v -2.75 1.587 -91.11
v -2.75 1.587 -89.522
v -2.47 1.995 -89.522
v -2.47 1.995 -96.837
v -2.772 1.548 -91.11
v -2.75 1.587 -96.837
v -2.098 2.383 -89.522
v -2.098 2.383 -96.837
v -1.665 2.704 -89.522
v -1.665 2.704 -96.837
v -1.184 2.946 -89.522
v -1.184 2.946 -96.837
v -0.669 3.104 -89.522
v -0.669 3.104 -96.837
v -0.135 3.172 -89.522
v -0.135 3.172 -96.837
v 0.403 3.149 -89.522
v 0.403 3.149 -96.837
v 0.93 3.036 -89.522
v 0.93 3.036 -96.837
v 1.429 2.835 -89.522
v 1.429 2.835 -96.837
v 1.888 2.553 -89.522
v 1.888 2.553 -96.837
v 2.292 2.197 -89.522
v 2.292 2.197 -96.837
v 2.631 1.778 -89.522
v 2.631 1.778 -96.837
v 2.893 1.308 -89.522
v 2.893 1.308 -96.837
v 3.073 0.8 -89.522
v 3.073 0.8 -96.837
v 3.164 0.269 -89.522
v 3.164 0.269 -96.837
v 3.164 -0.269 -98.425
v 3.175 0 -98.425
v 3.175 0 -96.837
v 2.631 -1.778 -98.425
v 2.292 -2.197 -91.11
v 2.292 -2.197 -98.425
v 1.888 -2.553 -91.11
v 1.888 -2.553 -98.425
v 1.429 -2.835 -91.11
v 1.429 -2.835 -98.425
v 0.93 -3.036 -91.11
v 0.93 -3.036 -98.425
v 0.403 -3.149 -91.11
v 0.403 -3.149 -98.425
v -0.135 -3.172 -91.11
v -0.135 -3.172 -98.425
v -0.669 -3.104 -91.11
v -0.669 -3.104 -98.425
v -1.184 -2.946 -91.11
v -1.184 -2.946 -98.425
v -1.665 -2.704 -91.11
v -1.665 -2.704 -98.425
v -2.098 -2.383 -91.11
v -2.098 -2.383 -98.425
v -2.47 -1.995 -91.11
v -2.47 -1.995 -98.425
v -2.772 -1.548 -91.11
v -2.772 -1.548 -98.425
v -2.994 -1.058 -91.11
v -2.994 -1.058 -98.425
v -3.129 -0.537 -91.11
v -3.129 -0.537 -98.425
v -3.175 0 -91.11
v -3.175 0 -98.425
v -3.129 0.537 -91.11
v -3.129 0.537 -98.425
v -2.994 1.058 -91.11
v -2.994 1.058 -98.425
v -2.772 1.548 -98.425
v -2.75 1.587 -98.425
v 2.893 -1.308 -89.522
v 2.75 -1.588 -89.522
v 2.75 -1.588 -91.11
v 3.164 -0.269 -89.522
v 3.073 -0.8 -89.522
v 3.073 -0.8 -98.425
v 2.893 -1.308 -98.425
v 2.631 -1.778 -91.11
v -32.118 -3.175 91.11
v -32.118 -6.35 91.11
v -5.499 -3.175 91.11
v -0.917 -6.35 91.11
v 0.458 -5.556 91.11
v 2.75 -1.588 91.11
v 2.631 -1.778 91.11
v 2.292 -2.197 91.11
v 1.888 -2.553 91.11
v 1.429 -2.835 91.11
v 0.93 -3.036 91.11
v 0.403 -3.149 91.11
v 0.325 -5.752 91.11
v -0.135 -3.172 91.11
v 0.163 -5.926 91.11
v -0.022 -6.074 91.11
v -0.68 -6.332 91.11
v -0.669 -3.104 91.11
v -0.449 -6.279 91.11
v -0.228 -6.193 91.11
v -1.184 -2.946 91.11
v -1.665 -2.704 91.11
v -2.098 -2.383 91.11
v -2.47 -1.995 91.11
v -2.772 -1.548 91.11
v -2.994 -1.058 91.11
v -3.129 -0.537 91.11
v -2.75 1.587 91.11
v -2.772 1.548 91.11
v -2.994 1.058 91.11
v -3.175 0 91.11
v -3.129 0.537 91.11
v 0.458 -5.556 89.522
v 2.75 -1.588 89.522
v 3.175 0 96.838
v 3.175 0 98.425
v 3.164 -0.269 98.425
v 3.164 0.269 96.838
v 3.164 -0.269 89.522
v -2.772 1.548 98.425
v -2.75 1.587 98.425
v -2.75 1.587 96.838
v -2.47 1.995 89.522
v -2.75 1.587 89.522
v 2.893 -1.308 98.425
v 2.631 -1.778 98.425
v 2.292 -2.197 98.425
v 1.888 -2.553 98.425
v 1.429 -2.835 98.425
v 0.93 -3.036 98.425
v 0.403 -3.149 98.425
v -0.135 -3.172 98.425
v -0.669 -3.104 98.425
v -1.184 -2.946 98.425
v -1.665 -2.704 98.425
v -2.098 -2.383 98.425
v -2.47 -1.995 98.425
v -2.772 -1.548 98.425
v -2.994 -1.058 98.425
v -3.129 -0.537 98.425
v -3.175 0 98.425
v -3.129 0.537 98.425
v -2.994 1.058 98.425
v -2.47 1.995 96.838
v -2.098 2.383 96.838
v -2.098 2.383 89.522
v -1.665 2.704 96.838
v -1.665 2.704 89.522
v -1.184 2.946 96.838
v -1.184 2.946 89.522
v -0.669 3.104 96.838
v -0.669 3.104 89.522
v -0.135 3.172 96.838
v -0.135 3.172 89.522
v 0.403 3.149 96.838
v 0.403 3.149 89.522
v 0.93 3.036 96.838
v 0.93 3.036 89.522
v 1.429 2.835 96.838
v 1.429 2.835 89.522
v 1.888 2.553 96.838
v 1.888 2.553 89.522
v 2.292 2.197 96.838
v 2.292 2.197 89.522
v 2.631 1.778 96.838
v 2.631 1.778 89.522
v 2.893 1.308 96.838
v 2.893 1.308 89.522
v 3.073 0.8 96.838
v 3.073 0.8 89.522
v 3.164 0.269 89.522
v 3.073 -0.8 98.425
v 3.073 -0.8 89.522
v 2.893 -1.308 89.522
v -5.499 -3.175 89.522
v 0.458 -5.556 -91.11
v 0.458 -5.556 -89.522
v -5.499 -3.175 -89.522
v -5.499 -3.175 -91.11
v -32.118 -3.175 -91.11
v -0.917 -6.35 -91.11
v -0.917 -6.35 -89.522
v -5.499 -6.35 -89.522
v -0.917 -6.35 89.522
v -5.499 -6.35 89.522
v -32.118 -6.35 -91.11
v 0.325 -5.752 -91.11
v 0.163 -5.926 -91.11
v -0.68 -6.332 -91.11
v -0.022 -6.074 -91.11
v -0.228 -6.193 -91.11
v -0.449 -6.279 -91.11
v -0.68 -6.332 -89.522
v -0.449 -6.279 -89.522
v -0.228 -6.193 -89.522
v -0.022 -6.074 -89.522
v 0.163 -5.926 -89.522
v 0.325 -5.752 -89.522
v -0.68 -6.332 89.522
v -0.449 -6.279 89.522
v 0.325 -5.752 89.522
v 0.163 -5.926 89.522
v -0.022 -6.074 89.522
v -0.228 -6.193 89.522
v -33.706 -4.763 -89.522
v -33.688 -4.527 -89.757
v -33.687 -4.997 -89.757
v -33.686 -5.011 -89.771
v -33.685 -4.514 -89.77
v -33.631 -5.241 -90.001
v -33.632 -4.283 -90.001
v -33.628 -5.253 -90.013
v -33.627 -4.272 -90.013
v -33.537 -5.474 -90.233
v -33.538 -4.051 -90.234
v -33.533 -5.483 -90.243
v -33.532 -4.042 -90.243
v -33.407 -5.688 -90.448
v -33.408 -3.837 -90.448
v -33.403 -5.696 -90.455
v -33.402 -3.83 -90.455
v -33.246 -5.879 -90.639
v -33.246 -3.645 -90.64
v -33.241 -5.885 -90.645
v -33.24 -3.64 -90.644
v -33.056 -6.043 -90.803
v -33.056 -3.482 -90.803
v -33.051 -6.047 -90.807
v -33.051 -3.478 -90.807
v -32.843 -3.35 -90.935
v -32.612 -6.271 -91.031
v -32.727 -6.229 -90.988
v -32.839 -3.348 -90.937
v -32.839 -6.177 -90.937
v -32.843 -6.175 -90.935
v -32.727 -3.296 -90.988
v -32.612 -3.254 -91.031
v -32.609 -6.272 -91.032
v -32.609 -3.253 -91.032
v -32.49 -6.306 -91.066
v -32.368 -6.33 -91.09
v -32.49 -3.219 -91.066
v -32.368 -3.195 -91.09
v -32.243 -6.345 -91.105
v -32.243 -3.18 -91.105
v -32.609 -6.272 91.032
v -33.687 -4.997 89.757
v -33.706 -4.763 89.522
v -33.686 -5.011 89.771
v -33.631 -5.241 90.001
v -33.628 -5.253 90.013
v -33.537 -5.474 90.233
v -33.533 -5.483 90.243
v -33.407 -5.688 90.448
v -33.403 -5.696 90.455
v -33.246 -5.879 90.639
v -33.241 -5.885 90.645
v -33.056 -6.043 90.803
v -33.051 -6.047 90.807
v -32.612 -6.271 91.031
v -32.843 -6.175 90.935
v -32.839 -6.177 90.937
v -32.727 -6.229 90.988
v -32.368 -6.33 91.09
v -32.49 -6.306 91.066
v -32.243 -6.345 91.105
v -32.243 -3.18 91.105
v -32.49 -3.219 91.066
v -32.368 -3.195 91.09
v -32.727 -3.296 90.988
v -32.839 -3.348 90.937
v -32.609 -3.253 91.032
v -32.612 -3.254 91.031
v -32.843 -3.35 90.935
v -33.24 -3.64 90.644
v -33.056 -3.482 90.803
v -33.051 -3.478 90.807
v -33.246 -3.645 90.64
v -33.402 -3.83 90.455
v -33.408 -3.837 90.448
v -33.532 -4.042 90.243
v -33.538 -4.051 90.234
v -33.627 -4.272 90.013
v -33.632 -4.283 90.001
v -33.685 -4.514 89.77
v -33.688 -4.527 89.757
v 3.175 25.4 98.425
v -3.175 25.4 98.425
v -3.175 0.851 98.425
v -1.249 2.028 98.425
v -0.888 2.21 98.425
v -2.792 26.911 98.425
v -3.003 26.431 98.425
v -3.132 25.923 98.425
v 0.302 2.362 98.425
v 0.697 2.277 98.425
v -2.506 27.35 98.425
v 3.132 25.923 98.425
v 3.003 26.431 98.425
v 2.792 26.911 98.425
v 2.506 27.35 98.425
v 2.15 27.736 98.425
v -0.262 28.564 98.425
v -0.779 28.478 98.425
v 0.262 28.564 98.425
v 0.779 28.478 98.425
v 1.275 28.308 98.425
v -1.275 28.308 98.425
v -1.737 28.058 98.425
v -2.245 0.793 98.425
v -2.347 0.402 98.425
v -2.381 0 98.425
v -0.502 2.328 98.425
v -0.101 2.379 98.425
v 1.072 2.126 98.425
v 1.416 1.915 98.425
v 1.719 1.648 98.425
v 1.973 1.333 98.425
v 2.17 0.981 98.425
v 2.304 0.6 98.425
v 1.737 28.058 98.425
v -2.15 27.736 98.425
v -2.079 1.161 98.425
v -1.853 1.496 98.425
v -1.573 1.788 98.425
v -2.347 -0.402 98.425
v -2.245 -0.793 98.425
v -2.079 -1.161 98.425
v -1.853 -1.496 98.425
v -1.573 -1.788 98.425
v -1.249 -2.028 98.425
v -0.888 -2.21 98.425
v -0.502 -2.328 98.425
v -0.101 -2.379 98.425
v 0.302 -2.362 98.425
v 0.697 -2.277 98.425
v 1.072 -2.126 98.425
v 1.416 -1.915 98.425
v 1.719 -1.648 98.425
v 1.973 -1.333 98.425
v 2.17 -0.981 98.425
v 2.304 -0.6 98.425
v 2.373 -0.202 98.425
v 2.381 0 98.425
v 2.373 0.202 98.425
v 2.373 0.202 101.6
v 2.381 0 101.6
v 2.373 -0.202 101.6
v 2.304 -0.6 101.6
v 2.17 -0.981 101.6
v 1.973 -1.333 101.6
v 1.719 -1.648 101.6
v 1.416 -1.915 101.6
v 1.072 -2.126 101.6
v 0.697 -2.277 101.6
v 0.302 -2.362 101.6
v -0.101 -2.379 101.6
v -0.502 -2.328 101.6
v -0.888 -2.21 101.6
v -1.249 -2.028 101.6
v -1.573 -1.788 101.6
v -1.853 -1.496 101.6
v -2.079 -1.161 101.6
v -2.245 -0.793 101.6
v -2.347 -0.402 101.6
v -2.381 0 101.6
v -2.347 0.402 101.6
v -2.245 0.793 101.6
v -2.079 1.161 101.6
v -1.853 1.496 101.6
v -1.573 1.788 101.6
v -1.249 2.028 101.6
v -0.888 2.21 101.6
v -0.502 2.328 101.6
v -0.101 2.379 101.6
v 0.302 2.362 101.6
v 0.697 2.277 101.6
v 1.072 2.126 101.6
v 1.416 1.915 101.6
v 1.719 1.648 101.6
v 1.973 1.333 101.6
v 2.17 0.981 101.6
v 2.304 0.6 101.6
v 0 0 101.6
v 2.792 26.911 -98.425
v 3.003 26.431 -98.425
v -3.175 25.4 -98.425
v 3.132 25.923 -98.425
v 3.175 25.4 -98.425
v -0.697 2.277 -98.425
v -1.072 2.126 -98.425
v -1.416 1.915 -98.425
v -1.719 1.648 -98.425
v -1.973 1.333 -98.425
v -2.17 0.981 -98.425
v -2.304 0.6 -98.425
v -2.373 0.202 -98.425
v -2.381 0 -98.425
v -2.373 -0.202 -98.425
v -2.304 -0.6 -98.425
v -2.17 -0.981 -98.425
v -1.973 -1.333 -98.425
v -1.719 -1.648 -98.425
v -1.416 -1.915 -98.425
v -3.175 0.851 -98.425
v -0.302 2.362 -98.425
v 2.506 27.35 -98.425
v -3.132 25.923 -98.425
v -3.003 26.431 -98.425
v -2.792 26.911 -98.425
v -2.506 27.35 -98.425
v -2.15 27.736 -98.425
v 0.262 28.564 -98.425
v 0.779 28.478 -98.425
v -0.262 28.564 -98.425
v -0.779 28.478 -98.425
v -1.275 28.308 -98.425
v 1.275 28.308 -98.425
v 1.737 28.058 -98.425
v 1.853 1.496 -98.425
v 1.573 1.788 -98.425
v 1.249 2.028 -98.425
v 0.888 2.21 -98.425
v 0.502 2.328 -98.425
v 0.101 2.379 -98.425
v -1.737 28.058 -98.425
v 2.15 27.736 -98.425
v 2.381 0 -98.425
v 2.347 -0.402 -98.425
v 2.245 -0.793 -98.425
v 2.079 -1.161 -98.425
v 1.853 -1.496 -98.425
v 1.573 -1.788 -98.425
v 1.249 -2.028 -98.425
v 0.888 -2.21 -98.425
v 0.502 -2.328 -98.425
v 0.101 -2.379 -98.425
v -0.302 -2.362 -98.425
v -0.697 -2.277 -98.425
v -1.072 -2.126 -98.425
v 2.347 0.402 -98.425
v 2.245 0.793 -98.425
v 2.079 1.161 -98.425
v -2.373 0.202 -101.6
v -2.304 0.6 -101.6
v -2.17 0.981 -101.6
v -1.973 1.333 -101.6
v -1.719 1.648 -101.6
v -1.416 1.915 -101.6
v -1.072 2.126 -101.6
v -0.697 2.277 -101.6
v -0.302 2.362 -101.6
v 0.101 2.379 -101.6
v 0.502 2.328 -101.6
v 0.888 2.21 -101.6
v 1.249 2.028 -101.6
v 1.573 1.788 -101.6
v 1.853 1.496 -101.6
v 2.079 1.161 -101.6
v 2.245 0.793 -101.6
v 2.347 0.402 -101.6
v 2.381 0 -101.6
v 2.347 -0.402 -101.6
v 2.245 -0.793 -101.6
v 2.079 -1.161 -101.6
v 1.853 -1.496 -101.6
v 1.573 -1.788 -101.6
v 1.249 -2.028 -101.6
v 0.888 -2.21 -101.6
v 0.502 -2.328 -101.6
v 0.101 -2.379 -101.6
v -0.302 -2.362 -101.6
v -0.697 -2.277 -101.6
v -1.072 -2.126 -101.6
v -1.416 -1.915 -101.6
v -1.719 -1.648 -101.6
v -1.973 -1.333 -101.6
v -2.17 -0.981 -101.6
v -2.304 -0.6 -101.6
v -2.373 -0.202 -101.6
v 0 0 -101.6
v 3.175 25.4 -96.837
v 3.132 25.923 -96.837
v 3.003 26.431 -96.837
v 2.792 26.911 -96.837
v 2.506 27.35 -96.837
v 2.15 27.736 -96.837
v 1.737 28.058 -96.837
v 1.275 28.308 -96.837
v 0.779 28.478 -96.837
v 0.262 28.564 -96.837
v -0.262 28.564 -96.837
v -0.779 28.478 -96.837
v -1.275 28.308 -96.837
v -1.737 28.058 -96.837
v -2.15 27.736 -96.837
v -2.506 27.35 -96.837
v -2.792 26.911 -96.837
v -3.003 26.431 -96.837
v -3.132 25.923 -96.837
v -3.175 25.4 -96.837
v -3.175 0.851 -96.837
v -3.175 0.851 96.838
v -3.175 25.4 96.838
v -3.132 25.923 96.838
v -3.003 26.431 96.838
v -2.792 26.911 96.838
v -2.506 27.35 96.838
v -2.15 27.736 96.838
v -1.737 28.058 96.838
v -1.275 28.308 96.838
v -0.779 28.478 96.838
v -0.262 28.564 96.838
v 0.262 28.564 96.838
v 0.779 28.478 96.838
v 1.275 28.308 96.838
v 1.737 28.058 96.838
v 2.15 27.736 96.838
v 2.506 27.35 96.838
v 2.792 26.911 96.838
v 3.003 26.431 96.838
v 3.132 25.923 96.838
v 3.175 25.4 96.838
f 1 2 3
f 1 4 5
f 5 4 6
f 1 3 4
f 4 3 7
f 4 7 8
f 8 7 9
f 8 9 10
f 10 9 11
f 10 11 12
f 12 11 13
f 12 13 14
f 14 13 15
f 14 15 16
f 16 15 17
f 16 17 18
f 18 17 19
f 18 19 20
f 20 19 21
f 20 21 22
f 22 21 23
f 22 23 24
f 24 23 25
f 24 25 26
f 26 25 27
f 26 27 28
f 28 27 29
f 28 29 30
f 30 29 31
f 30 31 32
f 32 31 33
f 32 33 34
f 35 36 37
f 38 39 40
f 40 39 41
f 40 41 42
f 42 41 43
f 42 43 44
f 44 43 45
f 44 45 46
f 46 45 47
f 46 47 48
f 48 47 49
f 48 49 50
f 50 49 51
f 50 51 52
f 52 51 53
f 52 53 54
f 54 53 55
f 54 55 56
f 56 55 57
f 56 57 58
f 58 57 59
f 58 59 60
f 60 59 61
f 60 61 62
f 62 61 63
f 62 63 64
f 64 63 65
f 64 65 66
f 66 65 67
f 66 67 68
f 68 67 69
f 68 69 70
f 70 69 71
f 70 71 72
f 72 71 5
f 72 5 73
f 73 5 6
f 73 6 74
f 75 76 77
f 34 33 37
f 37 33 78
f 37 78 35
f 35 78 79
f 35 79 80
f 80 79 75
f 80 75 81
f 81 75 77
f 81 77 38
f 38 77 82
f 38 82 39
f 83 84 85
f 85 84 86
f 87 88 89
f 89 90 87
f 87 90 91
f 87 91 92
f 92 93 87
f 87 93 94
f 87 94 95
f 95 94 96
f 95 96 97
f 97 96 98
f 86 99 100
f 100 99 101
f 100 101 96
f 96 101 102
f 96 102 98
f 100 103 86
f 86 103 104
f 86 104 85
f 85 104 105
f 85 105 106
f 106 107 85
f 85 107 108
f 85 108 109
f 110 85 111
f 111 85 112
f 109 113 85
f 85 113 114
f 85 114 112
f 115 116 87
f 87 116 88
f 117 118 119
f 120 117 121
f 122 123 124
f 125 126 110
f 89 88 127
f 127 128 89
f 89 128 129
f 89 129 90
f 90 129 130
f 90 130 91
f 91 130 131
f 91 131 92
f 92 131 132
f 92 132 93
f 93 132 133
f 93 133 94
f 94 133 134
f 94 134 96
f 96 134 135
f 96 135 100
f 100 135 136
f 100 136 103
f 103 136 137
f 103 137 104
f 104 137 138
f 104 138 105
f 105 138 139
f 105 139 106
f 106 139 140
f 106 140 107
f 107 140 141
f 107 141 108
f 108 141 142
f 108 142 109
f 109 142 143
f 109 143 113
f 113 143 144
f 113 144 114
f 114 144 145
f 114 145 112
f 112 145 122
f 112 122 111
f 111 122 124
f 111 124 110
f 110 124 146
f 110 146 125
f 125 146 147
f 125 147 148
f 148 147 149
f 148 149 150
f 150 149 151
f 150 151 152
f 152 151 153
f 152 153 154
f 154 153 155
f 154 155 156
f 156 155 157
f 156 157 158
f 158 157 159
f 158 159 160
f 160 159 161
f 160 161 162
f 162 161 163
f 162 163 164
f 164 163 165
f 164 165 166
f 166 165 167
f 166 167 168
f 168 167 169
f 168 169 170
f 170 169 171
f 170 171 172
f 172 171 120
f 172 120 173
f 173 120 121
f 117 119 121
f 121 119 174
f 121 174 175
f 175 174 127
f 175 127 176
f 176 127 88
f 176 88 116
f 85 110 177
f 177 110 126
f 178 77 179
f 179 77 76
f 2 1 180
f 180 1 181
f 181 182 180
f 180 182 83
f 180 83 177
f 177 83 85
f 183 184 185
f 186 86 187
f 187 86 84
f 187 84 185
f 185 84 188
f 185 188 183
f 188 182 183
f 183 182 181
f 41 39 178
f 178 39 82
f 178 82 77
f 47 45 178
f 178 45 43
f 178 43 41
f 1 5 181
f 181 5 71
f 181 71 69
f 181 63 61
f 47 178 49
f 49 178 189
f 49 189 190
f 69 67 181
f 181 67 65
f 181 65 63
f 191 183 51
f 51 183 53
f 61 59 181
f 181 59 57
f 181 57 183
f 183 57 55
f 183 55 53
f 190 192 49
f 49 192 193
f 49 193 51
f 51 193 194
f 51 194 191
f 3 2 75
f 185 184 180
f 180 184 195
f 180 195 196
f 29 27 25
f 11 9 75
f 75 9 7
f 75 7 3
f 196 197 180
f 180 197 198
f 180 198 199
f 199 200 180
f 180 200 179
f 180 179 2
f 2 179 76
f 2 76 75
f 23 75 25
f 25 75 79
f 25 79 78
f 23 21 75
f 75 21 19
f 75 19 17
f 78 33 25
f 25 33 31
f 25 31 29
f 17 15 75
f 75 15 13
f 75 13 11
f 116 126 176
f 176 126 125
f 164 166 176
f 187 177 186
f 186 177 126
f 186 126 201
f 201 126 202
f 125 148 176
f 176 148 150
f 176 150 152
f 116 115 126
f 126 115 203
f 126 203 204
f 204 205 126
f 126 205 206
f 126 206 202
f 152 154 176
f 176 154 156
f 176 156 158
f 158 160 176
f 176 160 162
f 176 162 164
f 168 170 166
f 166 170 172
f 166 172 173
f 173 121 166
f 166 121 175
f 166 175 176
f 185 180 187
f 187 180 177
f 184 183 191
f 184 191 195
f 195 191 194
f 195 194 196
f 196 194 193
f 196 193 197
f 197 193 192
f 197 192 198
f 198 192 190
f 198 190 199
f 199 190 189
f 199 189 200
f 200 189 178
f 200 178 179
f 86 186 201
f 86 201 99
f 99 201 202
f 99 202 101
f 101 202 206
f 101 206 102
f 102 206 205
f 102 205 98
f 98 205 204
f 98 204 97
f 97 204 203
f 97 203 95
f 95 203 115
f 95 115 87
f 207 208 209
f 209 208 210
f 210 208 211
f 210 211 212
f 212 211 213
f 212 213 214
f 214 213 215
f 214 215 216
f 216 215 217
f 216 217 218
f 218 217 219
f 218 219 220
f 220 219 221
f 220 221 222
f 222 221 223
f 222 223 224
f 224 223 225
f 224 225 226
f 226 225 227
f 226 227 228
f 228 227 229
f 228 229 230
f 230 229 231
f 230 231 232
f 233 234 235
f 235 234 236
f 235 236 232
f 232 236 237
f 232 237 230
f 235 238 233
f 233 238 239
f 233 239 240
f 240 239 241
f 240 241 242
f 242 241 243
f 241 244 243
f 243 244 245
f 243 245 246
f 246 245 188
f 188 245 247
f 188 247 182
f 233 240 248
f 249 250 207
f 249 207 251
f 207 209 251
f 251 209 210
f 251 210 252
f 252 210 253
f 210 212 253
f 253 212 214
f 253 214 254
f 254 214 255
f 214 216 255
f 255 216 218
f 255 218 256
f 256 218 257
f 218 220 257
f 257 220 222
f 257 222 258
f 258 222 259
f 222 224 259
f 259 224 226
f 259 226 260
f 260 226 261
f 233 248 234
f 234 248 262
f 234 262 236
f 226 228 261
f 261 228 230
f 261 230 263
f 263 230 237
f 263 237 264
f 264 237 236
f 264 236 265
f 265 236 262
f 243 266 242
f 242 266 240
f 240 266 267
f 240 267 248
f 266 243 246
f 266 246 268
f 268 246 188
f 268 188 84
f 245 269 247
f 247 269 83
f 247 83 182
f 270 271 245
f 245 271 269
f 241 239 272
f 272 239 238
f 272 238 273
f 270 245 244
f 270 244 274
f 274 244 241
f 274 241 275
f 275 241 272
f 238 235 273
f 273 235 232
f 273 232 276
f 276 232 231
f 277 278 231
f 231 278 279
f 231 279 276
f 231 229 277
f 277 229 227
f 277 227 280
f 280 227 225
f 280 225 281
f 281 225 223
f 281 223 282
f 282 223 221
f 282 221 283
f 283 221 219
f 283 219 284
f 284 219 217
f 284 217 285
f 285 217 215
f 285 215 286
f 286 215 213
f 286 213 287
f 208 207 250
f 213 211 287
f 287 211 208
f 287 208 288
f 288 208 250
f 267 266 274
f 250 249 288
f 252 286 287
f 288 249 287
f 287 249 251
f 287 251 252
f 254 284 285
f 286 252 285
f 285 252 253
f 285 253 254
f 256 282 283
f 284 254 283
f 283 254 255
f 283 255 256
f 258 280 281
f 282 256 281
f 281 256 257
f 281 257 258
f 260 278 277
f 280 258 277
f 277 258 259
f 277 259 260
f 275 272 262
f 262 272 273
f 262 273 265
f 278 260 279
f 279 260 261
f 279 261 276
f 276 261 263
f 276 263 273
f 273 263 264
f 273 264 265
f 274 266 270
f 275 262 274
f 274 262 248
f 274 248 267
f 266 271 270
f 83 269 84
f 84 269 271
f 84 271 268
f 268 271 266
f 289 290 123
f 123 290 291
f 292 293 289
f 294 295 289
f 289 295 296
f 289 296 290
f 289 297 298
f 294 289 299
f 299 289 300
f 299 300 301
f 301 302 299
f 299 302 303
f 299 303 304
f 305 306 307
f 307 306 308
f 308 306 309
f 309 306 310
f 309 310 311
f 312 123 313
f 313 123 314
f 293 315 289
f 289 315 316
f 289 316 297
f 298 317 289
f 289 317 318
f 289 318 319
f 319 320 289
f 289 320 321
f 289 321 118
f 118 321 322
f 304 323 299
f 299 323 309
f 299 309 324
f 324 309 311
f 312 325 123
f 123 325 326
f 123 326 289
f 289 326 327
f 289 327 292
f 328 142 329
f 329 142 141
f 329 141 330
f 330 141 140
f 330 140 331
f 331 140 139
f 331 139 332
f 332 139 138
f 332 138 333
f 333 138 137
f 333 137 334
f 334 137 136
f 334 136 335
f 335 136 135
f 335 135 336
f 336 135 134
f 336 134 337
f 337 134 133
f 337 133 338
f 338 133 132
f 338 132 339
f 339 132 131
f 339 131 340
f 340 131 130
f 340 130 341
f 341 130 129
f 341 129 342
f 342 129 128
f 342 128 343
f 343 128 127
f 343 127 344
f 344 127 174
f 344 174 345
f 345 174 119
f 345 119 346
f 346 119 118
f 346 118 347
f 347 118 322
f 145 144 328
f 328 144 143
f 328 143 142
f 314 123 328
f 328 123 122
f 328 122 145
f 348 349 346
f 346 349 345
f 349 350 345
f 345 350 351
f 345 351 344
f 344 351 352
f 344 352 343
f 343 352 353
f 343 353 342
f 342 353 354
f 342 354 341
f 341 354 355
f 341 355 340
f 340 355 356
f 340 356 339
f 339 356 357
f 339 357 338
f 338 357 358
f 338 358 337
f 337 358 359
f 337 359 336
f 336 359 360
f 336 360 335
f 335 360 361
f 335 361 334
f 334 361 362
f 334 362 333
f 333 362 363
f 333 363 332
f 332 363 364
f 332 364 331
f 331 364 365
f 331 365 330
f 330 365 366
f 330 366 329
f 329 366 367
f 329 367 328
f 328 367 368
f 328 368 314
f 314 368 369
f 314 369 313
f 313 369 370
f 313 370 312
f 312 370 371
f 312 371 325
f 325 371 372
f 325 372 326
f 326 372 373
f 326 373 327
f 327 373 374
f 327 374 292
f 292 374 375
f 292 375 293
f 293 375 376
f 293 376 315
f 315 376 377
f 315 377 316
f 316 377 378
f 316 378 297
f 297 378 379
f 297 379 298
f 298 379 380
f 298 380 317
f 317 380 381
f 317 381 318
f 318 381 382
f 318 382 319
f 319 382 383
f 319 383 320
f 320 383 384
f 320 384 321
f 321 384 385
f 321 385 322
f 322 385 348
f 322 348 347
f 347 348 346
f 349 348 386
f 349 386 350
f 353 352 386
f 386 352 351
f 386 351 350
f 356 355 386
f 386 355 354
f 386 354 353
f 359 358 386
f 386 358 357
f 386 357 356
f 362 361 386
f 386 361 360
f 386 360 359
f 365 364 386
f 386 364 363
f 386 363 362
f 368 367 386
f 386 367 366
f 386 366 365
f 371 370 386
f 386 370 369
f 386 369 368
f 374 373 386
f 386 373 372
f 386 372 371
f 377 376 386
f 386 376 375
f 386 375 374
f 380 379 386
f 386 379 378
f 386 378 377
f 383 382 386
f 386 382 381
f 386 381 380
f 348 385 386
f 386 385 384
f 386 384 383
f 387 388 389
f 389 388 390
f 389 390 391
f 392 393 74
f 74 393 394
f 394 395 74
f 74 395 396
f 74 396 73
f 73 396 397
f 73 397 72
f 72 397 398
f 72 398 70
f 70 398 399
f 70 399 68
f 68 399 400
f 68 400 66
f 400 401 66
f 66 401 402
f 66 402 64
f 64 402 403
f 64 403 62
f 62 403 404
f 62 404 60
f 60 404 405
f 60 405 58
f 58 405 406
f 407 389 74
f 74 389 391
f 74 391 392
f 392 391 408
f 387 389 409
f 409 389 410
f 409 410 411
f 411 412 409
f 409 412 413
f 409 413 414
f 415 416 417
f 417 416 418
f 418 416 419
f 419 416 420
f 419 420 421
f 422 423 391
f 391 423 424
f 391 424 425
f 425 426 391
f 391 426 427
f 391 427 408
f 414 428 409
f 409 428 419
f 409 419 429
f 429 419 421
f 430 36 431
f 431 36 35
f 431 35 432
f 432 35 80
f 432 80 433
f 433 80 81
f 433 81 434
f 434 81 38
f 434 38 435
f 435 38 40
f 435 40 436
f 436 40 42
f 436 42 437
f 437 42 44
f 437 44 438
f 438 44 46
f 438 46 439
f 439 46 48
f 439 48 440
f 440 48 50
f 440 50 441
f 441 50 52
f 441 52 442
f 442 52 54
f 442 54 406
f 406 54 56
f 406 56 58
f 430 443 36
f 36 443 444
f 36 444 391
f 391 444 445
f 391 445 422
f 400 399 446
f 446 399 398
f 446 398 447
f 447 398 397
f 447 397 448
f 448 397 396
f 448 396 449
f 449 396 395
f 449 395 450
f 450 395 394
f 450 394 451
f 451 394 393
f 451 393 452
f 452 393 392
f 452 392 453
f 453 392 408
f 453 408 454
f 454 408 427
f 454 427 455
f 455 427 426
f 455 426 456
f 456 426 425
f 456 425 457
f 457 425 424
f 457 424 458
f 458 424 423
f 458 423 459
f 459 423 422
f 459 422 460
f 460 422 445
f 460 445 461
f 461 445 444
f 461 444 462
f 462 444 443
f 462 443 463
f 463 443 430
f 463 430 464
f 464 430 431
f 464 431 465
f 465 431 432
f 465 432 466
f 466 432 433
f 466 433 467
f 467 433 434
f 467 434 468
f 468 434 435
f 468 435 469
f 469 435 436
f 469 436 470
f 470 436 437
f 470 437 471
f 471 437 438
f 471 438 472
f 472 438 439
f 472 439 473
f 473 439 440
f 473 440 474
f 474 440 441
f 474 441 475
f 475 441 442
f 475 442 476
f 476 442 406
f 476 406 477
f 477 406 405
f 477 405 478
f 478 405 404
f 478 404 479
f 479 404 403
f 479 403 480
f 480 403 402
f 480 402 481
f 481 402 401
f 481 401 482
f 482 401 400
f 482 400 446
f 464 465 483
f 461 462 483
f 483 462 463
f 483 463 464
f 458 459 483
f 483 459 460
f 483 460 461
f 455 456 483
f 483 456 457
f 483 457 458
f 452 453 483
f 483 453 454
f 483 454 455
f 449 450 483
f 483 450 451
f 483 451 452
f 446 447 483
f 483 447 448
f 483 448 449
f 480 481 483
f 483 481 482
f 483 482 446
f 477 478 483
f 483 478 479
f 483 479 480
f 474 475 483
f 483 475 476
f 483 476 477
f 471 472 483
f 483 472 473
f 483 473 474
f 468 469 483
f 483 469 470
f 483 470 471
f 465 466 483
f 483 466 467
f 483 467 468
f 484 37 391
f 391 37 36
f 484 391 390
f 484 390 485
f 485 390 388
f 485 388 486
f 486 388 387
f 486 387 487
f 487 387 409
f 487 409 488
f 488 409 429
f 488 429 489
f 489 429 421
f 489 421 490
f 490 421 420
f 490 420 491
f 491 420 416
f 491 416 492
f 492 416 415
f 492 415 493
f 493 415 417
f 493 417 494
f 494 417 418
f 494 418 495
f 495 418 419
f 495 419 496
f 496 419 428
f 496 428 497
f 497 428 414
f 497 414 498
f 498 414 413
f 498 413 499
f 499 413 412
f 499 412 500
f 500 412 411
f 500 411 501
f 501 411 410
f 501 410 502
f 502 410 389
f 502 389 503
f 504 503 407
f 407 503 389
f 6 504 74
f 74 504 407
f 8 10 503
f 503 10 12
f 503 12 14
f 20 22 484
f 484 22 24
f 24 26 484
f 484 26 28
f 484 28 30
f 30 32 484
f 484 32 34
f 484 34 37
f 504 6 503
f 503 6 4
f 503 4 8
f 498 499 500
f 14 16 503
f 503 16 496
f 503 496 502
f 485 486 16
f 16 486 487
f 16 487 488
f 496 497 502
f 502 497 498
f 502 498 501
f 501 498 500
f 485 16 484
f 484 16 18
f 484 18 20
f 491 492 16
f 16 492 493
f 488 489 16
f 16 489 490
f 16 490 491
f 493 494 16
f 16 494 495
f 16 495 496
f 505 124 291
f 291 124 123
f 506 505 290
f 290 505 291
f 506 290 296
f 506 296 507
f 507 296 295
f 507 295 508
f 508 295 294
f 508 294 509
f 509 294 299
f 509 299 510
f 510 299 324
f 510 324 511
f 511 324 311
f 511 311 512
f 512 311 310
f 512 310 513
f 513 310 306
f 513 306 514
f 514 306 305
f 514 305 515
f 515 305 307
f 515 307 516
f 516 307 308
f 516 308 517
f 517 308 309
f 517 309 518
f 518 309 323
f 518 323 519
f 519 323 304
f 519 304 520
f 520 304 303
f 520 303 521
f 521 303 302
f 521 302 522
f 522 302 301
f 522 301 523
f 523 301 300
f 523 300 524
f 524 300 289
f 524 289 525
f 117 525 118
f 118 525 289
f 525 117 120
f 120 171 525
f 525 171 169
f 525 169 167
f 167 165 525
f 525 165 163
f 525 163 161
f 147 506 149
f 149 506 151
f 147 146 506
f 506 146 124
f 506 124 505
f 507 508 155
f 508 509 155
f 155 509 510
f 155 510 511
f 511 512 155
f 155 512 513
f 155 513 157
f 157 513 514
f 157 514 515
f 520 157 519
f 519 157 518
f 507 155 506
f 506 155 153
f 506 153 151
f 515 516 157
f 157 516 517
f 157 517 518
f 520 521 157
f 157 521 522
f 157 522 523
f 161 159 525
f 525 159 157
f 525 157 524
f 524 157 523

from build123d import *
from build123d.topology import SkipClean

# Parameters (mm, degrees)
SKETCH1_R               = 3.175
SKETCH1_R_2             = 2.38125
BOSS_EXTRUDE1_DEPTH     = 91.1098
CUT_EXTRUDE1_DEPTH      = 98.351934288
CUT_EXTRUDE1_DEPTH_BACK = 98.351934288
FILLET1_R               = 1.5875
BOSS_EXTRUDE2_START     = 7.3152
SKETCH3_R               = 3.175
BOSS_EXTRUDE2_DEPTH     = 7.3152
SKETCH4_R               = 2.38125
BOSS_EXTRUDE3_DEPTH     = 3.175
BOSS_EXTRUDE4_START     = -1.5875
BOSS_EXTRUDE4_DEPTH     = 1.5875


with BuildPart() as part:
    # Sketch1 → Boss-Extrude1 (new, symmetric)
    # profile 1 of 3: a face of its own
    with BuildSketch(Plane.XY):
        with BuildLine():
            Line((-33.7058, -3.175), (-33.7058, -6.35))
            Line((-33.7058, -6.35), (0, -6.35))
            Line((0, -6.35), (2.749630657, -1.5875))
            ThreePointArc((2.749630657, -1.5875), (-1.5875, -2.749630657), (-2.749630657, 1.5875))
            Line((-2.749630657, 1.5875), (-5.499261314, -3.175))
            Line((-5.499261314, -3.175), (-33.7058, -3.175))
        make_face()
    # profile 2 of 3: a face of its own
    with BuildSketch(Plane.XY):
        Circle(SKETCH1_R)
        Circle(SKETCH1_R_2, mode=Mode.SUBTRACT)
    # profile 3 of 3: a face of its own
    with BuildSketch(Plane.XY):
        Circle(SKETCH1_R_2)
    extrude(amount=BOSS_EXTRUDE1_DEPTH, both=True)

    # Sketch2 → Cut-Extrude1 (cut, two sides: drawn at the far end of the back side and taken through both)
    with BuildSketch(Plane(origin=(0, 0, 0), x_dir=(1, 0, 0), z_dir=(0, 1, 0)).offset(-CUT_EXTRUDE1_DEPTH_BACK)):
        Polygon((-5.499261314, 89.5223), (-5.499261314, -89.5223), (3.175, -89.5223), (3.175, 0), (3.175, 89.5223), align=None)
    extrude(amount=CUT_EXTRUDE1_DEPTH + CUT_EXTRUDE1_DEPTH_BACK, mode=Mode.SUBTRACT)

    # Fillet1
    fillet1_edges = [part.edges().sort_by_distance(p)[0] for p in [
        (0, -6.35, 90.31605),
        (-33.7058, -6.35, 0),
        (-33.7058, -3.175, 0),
        (-33.7058, -4.7625, 91.1098),
        (0, -6.35, -90.31605),
        (-33.7058, -4.7625, -91.1098),
    ]]
    fillet(fillet1_edges, radius=FILLET1_R - 0.0001)  # a hair under: the kernel refuses the full size

    # Sketch3 → Boss-Extrude2 (add)
    with BuildSketch(Plane.XY.offset(91.1098).offset(BOSS_EXTRUDE2_START)):
        with Locations(Location((0, 0, 0), (0, 0, 150))):
            Circle(SKETCH3_R)
    boss_extrude2 = extrude(amount=-BOSS_EXTRUDE2_DEPTH)

    # Sketch4 → Boss-Extrude3 (add)
    with BuildSketch(Plane.XY.offset(98.425)):
        Circle(SKETCH4_R)
    boss_extrude3 = extrude(amount=BOSS_EXTRUDE3_DEPTH)

    # Mirror1: Boss-Extrude2, Boss-Extrude3 across plane
    with SkipClean():  # the faces are left unmerged after this step: merging them gives an invalid solid
        add(boss_extrude2.mirror(Plane.XY))
        add(boss_extrude3.mirror(Plane.XY))

    # Sketch6 → Boss-Extrude4 (add)
    with SkipClean():  # the faces are left unmerged after this step: merging them gives an invalid solid
        with BuildSketch(Plane(origin=(0, 0, -98.425), x_dir=(-1, 0, 0), z_dir=(0, 0, -1)).offset(BOSS_EXTRUDE4_START)):
            with BuildLine():
                Line((2.749630657, 1.5875), (3.175, 0.850738686))
                Line((3.175, 0.850738686), (3.175, 25.4))
                ThreePointArc((3.175, 25.4), (0, 28.575), (-3.175, 25.4))
                Line((-3.175, 25.4), (-3.175, 0))
                ThreePointArc((-3.175, 0), (-0.821750468, 3.066814498), (2.749630657, 1.5875))
            make_face()
        boss_extrude4 = extrude(amount=BOSS_EXTRUDE4_DEPTH)

    # Mirror2: Boss-Extrude4 across plane
    with SkipClean():  # the faces are left unmerged after this step: merging them gives an invalid solid
        add(boss_extrude4.mirror(Plane.XY))


solid = part.part
